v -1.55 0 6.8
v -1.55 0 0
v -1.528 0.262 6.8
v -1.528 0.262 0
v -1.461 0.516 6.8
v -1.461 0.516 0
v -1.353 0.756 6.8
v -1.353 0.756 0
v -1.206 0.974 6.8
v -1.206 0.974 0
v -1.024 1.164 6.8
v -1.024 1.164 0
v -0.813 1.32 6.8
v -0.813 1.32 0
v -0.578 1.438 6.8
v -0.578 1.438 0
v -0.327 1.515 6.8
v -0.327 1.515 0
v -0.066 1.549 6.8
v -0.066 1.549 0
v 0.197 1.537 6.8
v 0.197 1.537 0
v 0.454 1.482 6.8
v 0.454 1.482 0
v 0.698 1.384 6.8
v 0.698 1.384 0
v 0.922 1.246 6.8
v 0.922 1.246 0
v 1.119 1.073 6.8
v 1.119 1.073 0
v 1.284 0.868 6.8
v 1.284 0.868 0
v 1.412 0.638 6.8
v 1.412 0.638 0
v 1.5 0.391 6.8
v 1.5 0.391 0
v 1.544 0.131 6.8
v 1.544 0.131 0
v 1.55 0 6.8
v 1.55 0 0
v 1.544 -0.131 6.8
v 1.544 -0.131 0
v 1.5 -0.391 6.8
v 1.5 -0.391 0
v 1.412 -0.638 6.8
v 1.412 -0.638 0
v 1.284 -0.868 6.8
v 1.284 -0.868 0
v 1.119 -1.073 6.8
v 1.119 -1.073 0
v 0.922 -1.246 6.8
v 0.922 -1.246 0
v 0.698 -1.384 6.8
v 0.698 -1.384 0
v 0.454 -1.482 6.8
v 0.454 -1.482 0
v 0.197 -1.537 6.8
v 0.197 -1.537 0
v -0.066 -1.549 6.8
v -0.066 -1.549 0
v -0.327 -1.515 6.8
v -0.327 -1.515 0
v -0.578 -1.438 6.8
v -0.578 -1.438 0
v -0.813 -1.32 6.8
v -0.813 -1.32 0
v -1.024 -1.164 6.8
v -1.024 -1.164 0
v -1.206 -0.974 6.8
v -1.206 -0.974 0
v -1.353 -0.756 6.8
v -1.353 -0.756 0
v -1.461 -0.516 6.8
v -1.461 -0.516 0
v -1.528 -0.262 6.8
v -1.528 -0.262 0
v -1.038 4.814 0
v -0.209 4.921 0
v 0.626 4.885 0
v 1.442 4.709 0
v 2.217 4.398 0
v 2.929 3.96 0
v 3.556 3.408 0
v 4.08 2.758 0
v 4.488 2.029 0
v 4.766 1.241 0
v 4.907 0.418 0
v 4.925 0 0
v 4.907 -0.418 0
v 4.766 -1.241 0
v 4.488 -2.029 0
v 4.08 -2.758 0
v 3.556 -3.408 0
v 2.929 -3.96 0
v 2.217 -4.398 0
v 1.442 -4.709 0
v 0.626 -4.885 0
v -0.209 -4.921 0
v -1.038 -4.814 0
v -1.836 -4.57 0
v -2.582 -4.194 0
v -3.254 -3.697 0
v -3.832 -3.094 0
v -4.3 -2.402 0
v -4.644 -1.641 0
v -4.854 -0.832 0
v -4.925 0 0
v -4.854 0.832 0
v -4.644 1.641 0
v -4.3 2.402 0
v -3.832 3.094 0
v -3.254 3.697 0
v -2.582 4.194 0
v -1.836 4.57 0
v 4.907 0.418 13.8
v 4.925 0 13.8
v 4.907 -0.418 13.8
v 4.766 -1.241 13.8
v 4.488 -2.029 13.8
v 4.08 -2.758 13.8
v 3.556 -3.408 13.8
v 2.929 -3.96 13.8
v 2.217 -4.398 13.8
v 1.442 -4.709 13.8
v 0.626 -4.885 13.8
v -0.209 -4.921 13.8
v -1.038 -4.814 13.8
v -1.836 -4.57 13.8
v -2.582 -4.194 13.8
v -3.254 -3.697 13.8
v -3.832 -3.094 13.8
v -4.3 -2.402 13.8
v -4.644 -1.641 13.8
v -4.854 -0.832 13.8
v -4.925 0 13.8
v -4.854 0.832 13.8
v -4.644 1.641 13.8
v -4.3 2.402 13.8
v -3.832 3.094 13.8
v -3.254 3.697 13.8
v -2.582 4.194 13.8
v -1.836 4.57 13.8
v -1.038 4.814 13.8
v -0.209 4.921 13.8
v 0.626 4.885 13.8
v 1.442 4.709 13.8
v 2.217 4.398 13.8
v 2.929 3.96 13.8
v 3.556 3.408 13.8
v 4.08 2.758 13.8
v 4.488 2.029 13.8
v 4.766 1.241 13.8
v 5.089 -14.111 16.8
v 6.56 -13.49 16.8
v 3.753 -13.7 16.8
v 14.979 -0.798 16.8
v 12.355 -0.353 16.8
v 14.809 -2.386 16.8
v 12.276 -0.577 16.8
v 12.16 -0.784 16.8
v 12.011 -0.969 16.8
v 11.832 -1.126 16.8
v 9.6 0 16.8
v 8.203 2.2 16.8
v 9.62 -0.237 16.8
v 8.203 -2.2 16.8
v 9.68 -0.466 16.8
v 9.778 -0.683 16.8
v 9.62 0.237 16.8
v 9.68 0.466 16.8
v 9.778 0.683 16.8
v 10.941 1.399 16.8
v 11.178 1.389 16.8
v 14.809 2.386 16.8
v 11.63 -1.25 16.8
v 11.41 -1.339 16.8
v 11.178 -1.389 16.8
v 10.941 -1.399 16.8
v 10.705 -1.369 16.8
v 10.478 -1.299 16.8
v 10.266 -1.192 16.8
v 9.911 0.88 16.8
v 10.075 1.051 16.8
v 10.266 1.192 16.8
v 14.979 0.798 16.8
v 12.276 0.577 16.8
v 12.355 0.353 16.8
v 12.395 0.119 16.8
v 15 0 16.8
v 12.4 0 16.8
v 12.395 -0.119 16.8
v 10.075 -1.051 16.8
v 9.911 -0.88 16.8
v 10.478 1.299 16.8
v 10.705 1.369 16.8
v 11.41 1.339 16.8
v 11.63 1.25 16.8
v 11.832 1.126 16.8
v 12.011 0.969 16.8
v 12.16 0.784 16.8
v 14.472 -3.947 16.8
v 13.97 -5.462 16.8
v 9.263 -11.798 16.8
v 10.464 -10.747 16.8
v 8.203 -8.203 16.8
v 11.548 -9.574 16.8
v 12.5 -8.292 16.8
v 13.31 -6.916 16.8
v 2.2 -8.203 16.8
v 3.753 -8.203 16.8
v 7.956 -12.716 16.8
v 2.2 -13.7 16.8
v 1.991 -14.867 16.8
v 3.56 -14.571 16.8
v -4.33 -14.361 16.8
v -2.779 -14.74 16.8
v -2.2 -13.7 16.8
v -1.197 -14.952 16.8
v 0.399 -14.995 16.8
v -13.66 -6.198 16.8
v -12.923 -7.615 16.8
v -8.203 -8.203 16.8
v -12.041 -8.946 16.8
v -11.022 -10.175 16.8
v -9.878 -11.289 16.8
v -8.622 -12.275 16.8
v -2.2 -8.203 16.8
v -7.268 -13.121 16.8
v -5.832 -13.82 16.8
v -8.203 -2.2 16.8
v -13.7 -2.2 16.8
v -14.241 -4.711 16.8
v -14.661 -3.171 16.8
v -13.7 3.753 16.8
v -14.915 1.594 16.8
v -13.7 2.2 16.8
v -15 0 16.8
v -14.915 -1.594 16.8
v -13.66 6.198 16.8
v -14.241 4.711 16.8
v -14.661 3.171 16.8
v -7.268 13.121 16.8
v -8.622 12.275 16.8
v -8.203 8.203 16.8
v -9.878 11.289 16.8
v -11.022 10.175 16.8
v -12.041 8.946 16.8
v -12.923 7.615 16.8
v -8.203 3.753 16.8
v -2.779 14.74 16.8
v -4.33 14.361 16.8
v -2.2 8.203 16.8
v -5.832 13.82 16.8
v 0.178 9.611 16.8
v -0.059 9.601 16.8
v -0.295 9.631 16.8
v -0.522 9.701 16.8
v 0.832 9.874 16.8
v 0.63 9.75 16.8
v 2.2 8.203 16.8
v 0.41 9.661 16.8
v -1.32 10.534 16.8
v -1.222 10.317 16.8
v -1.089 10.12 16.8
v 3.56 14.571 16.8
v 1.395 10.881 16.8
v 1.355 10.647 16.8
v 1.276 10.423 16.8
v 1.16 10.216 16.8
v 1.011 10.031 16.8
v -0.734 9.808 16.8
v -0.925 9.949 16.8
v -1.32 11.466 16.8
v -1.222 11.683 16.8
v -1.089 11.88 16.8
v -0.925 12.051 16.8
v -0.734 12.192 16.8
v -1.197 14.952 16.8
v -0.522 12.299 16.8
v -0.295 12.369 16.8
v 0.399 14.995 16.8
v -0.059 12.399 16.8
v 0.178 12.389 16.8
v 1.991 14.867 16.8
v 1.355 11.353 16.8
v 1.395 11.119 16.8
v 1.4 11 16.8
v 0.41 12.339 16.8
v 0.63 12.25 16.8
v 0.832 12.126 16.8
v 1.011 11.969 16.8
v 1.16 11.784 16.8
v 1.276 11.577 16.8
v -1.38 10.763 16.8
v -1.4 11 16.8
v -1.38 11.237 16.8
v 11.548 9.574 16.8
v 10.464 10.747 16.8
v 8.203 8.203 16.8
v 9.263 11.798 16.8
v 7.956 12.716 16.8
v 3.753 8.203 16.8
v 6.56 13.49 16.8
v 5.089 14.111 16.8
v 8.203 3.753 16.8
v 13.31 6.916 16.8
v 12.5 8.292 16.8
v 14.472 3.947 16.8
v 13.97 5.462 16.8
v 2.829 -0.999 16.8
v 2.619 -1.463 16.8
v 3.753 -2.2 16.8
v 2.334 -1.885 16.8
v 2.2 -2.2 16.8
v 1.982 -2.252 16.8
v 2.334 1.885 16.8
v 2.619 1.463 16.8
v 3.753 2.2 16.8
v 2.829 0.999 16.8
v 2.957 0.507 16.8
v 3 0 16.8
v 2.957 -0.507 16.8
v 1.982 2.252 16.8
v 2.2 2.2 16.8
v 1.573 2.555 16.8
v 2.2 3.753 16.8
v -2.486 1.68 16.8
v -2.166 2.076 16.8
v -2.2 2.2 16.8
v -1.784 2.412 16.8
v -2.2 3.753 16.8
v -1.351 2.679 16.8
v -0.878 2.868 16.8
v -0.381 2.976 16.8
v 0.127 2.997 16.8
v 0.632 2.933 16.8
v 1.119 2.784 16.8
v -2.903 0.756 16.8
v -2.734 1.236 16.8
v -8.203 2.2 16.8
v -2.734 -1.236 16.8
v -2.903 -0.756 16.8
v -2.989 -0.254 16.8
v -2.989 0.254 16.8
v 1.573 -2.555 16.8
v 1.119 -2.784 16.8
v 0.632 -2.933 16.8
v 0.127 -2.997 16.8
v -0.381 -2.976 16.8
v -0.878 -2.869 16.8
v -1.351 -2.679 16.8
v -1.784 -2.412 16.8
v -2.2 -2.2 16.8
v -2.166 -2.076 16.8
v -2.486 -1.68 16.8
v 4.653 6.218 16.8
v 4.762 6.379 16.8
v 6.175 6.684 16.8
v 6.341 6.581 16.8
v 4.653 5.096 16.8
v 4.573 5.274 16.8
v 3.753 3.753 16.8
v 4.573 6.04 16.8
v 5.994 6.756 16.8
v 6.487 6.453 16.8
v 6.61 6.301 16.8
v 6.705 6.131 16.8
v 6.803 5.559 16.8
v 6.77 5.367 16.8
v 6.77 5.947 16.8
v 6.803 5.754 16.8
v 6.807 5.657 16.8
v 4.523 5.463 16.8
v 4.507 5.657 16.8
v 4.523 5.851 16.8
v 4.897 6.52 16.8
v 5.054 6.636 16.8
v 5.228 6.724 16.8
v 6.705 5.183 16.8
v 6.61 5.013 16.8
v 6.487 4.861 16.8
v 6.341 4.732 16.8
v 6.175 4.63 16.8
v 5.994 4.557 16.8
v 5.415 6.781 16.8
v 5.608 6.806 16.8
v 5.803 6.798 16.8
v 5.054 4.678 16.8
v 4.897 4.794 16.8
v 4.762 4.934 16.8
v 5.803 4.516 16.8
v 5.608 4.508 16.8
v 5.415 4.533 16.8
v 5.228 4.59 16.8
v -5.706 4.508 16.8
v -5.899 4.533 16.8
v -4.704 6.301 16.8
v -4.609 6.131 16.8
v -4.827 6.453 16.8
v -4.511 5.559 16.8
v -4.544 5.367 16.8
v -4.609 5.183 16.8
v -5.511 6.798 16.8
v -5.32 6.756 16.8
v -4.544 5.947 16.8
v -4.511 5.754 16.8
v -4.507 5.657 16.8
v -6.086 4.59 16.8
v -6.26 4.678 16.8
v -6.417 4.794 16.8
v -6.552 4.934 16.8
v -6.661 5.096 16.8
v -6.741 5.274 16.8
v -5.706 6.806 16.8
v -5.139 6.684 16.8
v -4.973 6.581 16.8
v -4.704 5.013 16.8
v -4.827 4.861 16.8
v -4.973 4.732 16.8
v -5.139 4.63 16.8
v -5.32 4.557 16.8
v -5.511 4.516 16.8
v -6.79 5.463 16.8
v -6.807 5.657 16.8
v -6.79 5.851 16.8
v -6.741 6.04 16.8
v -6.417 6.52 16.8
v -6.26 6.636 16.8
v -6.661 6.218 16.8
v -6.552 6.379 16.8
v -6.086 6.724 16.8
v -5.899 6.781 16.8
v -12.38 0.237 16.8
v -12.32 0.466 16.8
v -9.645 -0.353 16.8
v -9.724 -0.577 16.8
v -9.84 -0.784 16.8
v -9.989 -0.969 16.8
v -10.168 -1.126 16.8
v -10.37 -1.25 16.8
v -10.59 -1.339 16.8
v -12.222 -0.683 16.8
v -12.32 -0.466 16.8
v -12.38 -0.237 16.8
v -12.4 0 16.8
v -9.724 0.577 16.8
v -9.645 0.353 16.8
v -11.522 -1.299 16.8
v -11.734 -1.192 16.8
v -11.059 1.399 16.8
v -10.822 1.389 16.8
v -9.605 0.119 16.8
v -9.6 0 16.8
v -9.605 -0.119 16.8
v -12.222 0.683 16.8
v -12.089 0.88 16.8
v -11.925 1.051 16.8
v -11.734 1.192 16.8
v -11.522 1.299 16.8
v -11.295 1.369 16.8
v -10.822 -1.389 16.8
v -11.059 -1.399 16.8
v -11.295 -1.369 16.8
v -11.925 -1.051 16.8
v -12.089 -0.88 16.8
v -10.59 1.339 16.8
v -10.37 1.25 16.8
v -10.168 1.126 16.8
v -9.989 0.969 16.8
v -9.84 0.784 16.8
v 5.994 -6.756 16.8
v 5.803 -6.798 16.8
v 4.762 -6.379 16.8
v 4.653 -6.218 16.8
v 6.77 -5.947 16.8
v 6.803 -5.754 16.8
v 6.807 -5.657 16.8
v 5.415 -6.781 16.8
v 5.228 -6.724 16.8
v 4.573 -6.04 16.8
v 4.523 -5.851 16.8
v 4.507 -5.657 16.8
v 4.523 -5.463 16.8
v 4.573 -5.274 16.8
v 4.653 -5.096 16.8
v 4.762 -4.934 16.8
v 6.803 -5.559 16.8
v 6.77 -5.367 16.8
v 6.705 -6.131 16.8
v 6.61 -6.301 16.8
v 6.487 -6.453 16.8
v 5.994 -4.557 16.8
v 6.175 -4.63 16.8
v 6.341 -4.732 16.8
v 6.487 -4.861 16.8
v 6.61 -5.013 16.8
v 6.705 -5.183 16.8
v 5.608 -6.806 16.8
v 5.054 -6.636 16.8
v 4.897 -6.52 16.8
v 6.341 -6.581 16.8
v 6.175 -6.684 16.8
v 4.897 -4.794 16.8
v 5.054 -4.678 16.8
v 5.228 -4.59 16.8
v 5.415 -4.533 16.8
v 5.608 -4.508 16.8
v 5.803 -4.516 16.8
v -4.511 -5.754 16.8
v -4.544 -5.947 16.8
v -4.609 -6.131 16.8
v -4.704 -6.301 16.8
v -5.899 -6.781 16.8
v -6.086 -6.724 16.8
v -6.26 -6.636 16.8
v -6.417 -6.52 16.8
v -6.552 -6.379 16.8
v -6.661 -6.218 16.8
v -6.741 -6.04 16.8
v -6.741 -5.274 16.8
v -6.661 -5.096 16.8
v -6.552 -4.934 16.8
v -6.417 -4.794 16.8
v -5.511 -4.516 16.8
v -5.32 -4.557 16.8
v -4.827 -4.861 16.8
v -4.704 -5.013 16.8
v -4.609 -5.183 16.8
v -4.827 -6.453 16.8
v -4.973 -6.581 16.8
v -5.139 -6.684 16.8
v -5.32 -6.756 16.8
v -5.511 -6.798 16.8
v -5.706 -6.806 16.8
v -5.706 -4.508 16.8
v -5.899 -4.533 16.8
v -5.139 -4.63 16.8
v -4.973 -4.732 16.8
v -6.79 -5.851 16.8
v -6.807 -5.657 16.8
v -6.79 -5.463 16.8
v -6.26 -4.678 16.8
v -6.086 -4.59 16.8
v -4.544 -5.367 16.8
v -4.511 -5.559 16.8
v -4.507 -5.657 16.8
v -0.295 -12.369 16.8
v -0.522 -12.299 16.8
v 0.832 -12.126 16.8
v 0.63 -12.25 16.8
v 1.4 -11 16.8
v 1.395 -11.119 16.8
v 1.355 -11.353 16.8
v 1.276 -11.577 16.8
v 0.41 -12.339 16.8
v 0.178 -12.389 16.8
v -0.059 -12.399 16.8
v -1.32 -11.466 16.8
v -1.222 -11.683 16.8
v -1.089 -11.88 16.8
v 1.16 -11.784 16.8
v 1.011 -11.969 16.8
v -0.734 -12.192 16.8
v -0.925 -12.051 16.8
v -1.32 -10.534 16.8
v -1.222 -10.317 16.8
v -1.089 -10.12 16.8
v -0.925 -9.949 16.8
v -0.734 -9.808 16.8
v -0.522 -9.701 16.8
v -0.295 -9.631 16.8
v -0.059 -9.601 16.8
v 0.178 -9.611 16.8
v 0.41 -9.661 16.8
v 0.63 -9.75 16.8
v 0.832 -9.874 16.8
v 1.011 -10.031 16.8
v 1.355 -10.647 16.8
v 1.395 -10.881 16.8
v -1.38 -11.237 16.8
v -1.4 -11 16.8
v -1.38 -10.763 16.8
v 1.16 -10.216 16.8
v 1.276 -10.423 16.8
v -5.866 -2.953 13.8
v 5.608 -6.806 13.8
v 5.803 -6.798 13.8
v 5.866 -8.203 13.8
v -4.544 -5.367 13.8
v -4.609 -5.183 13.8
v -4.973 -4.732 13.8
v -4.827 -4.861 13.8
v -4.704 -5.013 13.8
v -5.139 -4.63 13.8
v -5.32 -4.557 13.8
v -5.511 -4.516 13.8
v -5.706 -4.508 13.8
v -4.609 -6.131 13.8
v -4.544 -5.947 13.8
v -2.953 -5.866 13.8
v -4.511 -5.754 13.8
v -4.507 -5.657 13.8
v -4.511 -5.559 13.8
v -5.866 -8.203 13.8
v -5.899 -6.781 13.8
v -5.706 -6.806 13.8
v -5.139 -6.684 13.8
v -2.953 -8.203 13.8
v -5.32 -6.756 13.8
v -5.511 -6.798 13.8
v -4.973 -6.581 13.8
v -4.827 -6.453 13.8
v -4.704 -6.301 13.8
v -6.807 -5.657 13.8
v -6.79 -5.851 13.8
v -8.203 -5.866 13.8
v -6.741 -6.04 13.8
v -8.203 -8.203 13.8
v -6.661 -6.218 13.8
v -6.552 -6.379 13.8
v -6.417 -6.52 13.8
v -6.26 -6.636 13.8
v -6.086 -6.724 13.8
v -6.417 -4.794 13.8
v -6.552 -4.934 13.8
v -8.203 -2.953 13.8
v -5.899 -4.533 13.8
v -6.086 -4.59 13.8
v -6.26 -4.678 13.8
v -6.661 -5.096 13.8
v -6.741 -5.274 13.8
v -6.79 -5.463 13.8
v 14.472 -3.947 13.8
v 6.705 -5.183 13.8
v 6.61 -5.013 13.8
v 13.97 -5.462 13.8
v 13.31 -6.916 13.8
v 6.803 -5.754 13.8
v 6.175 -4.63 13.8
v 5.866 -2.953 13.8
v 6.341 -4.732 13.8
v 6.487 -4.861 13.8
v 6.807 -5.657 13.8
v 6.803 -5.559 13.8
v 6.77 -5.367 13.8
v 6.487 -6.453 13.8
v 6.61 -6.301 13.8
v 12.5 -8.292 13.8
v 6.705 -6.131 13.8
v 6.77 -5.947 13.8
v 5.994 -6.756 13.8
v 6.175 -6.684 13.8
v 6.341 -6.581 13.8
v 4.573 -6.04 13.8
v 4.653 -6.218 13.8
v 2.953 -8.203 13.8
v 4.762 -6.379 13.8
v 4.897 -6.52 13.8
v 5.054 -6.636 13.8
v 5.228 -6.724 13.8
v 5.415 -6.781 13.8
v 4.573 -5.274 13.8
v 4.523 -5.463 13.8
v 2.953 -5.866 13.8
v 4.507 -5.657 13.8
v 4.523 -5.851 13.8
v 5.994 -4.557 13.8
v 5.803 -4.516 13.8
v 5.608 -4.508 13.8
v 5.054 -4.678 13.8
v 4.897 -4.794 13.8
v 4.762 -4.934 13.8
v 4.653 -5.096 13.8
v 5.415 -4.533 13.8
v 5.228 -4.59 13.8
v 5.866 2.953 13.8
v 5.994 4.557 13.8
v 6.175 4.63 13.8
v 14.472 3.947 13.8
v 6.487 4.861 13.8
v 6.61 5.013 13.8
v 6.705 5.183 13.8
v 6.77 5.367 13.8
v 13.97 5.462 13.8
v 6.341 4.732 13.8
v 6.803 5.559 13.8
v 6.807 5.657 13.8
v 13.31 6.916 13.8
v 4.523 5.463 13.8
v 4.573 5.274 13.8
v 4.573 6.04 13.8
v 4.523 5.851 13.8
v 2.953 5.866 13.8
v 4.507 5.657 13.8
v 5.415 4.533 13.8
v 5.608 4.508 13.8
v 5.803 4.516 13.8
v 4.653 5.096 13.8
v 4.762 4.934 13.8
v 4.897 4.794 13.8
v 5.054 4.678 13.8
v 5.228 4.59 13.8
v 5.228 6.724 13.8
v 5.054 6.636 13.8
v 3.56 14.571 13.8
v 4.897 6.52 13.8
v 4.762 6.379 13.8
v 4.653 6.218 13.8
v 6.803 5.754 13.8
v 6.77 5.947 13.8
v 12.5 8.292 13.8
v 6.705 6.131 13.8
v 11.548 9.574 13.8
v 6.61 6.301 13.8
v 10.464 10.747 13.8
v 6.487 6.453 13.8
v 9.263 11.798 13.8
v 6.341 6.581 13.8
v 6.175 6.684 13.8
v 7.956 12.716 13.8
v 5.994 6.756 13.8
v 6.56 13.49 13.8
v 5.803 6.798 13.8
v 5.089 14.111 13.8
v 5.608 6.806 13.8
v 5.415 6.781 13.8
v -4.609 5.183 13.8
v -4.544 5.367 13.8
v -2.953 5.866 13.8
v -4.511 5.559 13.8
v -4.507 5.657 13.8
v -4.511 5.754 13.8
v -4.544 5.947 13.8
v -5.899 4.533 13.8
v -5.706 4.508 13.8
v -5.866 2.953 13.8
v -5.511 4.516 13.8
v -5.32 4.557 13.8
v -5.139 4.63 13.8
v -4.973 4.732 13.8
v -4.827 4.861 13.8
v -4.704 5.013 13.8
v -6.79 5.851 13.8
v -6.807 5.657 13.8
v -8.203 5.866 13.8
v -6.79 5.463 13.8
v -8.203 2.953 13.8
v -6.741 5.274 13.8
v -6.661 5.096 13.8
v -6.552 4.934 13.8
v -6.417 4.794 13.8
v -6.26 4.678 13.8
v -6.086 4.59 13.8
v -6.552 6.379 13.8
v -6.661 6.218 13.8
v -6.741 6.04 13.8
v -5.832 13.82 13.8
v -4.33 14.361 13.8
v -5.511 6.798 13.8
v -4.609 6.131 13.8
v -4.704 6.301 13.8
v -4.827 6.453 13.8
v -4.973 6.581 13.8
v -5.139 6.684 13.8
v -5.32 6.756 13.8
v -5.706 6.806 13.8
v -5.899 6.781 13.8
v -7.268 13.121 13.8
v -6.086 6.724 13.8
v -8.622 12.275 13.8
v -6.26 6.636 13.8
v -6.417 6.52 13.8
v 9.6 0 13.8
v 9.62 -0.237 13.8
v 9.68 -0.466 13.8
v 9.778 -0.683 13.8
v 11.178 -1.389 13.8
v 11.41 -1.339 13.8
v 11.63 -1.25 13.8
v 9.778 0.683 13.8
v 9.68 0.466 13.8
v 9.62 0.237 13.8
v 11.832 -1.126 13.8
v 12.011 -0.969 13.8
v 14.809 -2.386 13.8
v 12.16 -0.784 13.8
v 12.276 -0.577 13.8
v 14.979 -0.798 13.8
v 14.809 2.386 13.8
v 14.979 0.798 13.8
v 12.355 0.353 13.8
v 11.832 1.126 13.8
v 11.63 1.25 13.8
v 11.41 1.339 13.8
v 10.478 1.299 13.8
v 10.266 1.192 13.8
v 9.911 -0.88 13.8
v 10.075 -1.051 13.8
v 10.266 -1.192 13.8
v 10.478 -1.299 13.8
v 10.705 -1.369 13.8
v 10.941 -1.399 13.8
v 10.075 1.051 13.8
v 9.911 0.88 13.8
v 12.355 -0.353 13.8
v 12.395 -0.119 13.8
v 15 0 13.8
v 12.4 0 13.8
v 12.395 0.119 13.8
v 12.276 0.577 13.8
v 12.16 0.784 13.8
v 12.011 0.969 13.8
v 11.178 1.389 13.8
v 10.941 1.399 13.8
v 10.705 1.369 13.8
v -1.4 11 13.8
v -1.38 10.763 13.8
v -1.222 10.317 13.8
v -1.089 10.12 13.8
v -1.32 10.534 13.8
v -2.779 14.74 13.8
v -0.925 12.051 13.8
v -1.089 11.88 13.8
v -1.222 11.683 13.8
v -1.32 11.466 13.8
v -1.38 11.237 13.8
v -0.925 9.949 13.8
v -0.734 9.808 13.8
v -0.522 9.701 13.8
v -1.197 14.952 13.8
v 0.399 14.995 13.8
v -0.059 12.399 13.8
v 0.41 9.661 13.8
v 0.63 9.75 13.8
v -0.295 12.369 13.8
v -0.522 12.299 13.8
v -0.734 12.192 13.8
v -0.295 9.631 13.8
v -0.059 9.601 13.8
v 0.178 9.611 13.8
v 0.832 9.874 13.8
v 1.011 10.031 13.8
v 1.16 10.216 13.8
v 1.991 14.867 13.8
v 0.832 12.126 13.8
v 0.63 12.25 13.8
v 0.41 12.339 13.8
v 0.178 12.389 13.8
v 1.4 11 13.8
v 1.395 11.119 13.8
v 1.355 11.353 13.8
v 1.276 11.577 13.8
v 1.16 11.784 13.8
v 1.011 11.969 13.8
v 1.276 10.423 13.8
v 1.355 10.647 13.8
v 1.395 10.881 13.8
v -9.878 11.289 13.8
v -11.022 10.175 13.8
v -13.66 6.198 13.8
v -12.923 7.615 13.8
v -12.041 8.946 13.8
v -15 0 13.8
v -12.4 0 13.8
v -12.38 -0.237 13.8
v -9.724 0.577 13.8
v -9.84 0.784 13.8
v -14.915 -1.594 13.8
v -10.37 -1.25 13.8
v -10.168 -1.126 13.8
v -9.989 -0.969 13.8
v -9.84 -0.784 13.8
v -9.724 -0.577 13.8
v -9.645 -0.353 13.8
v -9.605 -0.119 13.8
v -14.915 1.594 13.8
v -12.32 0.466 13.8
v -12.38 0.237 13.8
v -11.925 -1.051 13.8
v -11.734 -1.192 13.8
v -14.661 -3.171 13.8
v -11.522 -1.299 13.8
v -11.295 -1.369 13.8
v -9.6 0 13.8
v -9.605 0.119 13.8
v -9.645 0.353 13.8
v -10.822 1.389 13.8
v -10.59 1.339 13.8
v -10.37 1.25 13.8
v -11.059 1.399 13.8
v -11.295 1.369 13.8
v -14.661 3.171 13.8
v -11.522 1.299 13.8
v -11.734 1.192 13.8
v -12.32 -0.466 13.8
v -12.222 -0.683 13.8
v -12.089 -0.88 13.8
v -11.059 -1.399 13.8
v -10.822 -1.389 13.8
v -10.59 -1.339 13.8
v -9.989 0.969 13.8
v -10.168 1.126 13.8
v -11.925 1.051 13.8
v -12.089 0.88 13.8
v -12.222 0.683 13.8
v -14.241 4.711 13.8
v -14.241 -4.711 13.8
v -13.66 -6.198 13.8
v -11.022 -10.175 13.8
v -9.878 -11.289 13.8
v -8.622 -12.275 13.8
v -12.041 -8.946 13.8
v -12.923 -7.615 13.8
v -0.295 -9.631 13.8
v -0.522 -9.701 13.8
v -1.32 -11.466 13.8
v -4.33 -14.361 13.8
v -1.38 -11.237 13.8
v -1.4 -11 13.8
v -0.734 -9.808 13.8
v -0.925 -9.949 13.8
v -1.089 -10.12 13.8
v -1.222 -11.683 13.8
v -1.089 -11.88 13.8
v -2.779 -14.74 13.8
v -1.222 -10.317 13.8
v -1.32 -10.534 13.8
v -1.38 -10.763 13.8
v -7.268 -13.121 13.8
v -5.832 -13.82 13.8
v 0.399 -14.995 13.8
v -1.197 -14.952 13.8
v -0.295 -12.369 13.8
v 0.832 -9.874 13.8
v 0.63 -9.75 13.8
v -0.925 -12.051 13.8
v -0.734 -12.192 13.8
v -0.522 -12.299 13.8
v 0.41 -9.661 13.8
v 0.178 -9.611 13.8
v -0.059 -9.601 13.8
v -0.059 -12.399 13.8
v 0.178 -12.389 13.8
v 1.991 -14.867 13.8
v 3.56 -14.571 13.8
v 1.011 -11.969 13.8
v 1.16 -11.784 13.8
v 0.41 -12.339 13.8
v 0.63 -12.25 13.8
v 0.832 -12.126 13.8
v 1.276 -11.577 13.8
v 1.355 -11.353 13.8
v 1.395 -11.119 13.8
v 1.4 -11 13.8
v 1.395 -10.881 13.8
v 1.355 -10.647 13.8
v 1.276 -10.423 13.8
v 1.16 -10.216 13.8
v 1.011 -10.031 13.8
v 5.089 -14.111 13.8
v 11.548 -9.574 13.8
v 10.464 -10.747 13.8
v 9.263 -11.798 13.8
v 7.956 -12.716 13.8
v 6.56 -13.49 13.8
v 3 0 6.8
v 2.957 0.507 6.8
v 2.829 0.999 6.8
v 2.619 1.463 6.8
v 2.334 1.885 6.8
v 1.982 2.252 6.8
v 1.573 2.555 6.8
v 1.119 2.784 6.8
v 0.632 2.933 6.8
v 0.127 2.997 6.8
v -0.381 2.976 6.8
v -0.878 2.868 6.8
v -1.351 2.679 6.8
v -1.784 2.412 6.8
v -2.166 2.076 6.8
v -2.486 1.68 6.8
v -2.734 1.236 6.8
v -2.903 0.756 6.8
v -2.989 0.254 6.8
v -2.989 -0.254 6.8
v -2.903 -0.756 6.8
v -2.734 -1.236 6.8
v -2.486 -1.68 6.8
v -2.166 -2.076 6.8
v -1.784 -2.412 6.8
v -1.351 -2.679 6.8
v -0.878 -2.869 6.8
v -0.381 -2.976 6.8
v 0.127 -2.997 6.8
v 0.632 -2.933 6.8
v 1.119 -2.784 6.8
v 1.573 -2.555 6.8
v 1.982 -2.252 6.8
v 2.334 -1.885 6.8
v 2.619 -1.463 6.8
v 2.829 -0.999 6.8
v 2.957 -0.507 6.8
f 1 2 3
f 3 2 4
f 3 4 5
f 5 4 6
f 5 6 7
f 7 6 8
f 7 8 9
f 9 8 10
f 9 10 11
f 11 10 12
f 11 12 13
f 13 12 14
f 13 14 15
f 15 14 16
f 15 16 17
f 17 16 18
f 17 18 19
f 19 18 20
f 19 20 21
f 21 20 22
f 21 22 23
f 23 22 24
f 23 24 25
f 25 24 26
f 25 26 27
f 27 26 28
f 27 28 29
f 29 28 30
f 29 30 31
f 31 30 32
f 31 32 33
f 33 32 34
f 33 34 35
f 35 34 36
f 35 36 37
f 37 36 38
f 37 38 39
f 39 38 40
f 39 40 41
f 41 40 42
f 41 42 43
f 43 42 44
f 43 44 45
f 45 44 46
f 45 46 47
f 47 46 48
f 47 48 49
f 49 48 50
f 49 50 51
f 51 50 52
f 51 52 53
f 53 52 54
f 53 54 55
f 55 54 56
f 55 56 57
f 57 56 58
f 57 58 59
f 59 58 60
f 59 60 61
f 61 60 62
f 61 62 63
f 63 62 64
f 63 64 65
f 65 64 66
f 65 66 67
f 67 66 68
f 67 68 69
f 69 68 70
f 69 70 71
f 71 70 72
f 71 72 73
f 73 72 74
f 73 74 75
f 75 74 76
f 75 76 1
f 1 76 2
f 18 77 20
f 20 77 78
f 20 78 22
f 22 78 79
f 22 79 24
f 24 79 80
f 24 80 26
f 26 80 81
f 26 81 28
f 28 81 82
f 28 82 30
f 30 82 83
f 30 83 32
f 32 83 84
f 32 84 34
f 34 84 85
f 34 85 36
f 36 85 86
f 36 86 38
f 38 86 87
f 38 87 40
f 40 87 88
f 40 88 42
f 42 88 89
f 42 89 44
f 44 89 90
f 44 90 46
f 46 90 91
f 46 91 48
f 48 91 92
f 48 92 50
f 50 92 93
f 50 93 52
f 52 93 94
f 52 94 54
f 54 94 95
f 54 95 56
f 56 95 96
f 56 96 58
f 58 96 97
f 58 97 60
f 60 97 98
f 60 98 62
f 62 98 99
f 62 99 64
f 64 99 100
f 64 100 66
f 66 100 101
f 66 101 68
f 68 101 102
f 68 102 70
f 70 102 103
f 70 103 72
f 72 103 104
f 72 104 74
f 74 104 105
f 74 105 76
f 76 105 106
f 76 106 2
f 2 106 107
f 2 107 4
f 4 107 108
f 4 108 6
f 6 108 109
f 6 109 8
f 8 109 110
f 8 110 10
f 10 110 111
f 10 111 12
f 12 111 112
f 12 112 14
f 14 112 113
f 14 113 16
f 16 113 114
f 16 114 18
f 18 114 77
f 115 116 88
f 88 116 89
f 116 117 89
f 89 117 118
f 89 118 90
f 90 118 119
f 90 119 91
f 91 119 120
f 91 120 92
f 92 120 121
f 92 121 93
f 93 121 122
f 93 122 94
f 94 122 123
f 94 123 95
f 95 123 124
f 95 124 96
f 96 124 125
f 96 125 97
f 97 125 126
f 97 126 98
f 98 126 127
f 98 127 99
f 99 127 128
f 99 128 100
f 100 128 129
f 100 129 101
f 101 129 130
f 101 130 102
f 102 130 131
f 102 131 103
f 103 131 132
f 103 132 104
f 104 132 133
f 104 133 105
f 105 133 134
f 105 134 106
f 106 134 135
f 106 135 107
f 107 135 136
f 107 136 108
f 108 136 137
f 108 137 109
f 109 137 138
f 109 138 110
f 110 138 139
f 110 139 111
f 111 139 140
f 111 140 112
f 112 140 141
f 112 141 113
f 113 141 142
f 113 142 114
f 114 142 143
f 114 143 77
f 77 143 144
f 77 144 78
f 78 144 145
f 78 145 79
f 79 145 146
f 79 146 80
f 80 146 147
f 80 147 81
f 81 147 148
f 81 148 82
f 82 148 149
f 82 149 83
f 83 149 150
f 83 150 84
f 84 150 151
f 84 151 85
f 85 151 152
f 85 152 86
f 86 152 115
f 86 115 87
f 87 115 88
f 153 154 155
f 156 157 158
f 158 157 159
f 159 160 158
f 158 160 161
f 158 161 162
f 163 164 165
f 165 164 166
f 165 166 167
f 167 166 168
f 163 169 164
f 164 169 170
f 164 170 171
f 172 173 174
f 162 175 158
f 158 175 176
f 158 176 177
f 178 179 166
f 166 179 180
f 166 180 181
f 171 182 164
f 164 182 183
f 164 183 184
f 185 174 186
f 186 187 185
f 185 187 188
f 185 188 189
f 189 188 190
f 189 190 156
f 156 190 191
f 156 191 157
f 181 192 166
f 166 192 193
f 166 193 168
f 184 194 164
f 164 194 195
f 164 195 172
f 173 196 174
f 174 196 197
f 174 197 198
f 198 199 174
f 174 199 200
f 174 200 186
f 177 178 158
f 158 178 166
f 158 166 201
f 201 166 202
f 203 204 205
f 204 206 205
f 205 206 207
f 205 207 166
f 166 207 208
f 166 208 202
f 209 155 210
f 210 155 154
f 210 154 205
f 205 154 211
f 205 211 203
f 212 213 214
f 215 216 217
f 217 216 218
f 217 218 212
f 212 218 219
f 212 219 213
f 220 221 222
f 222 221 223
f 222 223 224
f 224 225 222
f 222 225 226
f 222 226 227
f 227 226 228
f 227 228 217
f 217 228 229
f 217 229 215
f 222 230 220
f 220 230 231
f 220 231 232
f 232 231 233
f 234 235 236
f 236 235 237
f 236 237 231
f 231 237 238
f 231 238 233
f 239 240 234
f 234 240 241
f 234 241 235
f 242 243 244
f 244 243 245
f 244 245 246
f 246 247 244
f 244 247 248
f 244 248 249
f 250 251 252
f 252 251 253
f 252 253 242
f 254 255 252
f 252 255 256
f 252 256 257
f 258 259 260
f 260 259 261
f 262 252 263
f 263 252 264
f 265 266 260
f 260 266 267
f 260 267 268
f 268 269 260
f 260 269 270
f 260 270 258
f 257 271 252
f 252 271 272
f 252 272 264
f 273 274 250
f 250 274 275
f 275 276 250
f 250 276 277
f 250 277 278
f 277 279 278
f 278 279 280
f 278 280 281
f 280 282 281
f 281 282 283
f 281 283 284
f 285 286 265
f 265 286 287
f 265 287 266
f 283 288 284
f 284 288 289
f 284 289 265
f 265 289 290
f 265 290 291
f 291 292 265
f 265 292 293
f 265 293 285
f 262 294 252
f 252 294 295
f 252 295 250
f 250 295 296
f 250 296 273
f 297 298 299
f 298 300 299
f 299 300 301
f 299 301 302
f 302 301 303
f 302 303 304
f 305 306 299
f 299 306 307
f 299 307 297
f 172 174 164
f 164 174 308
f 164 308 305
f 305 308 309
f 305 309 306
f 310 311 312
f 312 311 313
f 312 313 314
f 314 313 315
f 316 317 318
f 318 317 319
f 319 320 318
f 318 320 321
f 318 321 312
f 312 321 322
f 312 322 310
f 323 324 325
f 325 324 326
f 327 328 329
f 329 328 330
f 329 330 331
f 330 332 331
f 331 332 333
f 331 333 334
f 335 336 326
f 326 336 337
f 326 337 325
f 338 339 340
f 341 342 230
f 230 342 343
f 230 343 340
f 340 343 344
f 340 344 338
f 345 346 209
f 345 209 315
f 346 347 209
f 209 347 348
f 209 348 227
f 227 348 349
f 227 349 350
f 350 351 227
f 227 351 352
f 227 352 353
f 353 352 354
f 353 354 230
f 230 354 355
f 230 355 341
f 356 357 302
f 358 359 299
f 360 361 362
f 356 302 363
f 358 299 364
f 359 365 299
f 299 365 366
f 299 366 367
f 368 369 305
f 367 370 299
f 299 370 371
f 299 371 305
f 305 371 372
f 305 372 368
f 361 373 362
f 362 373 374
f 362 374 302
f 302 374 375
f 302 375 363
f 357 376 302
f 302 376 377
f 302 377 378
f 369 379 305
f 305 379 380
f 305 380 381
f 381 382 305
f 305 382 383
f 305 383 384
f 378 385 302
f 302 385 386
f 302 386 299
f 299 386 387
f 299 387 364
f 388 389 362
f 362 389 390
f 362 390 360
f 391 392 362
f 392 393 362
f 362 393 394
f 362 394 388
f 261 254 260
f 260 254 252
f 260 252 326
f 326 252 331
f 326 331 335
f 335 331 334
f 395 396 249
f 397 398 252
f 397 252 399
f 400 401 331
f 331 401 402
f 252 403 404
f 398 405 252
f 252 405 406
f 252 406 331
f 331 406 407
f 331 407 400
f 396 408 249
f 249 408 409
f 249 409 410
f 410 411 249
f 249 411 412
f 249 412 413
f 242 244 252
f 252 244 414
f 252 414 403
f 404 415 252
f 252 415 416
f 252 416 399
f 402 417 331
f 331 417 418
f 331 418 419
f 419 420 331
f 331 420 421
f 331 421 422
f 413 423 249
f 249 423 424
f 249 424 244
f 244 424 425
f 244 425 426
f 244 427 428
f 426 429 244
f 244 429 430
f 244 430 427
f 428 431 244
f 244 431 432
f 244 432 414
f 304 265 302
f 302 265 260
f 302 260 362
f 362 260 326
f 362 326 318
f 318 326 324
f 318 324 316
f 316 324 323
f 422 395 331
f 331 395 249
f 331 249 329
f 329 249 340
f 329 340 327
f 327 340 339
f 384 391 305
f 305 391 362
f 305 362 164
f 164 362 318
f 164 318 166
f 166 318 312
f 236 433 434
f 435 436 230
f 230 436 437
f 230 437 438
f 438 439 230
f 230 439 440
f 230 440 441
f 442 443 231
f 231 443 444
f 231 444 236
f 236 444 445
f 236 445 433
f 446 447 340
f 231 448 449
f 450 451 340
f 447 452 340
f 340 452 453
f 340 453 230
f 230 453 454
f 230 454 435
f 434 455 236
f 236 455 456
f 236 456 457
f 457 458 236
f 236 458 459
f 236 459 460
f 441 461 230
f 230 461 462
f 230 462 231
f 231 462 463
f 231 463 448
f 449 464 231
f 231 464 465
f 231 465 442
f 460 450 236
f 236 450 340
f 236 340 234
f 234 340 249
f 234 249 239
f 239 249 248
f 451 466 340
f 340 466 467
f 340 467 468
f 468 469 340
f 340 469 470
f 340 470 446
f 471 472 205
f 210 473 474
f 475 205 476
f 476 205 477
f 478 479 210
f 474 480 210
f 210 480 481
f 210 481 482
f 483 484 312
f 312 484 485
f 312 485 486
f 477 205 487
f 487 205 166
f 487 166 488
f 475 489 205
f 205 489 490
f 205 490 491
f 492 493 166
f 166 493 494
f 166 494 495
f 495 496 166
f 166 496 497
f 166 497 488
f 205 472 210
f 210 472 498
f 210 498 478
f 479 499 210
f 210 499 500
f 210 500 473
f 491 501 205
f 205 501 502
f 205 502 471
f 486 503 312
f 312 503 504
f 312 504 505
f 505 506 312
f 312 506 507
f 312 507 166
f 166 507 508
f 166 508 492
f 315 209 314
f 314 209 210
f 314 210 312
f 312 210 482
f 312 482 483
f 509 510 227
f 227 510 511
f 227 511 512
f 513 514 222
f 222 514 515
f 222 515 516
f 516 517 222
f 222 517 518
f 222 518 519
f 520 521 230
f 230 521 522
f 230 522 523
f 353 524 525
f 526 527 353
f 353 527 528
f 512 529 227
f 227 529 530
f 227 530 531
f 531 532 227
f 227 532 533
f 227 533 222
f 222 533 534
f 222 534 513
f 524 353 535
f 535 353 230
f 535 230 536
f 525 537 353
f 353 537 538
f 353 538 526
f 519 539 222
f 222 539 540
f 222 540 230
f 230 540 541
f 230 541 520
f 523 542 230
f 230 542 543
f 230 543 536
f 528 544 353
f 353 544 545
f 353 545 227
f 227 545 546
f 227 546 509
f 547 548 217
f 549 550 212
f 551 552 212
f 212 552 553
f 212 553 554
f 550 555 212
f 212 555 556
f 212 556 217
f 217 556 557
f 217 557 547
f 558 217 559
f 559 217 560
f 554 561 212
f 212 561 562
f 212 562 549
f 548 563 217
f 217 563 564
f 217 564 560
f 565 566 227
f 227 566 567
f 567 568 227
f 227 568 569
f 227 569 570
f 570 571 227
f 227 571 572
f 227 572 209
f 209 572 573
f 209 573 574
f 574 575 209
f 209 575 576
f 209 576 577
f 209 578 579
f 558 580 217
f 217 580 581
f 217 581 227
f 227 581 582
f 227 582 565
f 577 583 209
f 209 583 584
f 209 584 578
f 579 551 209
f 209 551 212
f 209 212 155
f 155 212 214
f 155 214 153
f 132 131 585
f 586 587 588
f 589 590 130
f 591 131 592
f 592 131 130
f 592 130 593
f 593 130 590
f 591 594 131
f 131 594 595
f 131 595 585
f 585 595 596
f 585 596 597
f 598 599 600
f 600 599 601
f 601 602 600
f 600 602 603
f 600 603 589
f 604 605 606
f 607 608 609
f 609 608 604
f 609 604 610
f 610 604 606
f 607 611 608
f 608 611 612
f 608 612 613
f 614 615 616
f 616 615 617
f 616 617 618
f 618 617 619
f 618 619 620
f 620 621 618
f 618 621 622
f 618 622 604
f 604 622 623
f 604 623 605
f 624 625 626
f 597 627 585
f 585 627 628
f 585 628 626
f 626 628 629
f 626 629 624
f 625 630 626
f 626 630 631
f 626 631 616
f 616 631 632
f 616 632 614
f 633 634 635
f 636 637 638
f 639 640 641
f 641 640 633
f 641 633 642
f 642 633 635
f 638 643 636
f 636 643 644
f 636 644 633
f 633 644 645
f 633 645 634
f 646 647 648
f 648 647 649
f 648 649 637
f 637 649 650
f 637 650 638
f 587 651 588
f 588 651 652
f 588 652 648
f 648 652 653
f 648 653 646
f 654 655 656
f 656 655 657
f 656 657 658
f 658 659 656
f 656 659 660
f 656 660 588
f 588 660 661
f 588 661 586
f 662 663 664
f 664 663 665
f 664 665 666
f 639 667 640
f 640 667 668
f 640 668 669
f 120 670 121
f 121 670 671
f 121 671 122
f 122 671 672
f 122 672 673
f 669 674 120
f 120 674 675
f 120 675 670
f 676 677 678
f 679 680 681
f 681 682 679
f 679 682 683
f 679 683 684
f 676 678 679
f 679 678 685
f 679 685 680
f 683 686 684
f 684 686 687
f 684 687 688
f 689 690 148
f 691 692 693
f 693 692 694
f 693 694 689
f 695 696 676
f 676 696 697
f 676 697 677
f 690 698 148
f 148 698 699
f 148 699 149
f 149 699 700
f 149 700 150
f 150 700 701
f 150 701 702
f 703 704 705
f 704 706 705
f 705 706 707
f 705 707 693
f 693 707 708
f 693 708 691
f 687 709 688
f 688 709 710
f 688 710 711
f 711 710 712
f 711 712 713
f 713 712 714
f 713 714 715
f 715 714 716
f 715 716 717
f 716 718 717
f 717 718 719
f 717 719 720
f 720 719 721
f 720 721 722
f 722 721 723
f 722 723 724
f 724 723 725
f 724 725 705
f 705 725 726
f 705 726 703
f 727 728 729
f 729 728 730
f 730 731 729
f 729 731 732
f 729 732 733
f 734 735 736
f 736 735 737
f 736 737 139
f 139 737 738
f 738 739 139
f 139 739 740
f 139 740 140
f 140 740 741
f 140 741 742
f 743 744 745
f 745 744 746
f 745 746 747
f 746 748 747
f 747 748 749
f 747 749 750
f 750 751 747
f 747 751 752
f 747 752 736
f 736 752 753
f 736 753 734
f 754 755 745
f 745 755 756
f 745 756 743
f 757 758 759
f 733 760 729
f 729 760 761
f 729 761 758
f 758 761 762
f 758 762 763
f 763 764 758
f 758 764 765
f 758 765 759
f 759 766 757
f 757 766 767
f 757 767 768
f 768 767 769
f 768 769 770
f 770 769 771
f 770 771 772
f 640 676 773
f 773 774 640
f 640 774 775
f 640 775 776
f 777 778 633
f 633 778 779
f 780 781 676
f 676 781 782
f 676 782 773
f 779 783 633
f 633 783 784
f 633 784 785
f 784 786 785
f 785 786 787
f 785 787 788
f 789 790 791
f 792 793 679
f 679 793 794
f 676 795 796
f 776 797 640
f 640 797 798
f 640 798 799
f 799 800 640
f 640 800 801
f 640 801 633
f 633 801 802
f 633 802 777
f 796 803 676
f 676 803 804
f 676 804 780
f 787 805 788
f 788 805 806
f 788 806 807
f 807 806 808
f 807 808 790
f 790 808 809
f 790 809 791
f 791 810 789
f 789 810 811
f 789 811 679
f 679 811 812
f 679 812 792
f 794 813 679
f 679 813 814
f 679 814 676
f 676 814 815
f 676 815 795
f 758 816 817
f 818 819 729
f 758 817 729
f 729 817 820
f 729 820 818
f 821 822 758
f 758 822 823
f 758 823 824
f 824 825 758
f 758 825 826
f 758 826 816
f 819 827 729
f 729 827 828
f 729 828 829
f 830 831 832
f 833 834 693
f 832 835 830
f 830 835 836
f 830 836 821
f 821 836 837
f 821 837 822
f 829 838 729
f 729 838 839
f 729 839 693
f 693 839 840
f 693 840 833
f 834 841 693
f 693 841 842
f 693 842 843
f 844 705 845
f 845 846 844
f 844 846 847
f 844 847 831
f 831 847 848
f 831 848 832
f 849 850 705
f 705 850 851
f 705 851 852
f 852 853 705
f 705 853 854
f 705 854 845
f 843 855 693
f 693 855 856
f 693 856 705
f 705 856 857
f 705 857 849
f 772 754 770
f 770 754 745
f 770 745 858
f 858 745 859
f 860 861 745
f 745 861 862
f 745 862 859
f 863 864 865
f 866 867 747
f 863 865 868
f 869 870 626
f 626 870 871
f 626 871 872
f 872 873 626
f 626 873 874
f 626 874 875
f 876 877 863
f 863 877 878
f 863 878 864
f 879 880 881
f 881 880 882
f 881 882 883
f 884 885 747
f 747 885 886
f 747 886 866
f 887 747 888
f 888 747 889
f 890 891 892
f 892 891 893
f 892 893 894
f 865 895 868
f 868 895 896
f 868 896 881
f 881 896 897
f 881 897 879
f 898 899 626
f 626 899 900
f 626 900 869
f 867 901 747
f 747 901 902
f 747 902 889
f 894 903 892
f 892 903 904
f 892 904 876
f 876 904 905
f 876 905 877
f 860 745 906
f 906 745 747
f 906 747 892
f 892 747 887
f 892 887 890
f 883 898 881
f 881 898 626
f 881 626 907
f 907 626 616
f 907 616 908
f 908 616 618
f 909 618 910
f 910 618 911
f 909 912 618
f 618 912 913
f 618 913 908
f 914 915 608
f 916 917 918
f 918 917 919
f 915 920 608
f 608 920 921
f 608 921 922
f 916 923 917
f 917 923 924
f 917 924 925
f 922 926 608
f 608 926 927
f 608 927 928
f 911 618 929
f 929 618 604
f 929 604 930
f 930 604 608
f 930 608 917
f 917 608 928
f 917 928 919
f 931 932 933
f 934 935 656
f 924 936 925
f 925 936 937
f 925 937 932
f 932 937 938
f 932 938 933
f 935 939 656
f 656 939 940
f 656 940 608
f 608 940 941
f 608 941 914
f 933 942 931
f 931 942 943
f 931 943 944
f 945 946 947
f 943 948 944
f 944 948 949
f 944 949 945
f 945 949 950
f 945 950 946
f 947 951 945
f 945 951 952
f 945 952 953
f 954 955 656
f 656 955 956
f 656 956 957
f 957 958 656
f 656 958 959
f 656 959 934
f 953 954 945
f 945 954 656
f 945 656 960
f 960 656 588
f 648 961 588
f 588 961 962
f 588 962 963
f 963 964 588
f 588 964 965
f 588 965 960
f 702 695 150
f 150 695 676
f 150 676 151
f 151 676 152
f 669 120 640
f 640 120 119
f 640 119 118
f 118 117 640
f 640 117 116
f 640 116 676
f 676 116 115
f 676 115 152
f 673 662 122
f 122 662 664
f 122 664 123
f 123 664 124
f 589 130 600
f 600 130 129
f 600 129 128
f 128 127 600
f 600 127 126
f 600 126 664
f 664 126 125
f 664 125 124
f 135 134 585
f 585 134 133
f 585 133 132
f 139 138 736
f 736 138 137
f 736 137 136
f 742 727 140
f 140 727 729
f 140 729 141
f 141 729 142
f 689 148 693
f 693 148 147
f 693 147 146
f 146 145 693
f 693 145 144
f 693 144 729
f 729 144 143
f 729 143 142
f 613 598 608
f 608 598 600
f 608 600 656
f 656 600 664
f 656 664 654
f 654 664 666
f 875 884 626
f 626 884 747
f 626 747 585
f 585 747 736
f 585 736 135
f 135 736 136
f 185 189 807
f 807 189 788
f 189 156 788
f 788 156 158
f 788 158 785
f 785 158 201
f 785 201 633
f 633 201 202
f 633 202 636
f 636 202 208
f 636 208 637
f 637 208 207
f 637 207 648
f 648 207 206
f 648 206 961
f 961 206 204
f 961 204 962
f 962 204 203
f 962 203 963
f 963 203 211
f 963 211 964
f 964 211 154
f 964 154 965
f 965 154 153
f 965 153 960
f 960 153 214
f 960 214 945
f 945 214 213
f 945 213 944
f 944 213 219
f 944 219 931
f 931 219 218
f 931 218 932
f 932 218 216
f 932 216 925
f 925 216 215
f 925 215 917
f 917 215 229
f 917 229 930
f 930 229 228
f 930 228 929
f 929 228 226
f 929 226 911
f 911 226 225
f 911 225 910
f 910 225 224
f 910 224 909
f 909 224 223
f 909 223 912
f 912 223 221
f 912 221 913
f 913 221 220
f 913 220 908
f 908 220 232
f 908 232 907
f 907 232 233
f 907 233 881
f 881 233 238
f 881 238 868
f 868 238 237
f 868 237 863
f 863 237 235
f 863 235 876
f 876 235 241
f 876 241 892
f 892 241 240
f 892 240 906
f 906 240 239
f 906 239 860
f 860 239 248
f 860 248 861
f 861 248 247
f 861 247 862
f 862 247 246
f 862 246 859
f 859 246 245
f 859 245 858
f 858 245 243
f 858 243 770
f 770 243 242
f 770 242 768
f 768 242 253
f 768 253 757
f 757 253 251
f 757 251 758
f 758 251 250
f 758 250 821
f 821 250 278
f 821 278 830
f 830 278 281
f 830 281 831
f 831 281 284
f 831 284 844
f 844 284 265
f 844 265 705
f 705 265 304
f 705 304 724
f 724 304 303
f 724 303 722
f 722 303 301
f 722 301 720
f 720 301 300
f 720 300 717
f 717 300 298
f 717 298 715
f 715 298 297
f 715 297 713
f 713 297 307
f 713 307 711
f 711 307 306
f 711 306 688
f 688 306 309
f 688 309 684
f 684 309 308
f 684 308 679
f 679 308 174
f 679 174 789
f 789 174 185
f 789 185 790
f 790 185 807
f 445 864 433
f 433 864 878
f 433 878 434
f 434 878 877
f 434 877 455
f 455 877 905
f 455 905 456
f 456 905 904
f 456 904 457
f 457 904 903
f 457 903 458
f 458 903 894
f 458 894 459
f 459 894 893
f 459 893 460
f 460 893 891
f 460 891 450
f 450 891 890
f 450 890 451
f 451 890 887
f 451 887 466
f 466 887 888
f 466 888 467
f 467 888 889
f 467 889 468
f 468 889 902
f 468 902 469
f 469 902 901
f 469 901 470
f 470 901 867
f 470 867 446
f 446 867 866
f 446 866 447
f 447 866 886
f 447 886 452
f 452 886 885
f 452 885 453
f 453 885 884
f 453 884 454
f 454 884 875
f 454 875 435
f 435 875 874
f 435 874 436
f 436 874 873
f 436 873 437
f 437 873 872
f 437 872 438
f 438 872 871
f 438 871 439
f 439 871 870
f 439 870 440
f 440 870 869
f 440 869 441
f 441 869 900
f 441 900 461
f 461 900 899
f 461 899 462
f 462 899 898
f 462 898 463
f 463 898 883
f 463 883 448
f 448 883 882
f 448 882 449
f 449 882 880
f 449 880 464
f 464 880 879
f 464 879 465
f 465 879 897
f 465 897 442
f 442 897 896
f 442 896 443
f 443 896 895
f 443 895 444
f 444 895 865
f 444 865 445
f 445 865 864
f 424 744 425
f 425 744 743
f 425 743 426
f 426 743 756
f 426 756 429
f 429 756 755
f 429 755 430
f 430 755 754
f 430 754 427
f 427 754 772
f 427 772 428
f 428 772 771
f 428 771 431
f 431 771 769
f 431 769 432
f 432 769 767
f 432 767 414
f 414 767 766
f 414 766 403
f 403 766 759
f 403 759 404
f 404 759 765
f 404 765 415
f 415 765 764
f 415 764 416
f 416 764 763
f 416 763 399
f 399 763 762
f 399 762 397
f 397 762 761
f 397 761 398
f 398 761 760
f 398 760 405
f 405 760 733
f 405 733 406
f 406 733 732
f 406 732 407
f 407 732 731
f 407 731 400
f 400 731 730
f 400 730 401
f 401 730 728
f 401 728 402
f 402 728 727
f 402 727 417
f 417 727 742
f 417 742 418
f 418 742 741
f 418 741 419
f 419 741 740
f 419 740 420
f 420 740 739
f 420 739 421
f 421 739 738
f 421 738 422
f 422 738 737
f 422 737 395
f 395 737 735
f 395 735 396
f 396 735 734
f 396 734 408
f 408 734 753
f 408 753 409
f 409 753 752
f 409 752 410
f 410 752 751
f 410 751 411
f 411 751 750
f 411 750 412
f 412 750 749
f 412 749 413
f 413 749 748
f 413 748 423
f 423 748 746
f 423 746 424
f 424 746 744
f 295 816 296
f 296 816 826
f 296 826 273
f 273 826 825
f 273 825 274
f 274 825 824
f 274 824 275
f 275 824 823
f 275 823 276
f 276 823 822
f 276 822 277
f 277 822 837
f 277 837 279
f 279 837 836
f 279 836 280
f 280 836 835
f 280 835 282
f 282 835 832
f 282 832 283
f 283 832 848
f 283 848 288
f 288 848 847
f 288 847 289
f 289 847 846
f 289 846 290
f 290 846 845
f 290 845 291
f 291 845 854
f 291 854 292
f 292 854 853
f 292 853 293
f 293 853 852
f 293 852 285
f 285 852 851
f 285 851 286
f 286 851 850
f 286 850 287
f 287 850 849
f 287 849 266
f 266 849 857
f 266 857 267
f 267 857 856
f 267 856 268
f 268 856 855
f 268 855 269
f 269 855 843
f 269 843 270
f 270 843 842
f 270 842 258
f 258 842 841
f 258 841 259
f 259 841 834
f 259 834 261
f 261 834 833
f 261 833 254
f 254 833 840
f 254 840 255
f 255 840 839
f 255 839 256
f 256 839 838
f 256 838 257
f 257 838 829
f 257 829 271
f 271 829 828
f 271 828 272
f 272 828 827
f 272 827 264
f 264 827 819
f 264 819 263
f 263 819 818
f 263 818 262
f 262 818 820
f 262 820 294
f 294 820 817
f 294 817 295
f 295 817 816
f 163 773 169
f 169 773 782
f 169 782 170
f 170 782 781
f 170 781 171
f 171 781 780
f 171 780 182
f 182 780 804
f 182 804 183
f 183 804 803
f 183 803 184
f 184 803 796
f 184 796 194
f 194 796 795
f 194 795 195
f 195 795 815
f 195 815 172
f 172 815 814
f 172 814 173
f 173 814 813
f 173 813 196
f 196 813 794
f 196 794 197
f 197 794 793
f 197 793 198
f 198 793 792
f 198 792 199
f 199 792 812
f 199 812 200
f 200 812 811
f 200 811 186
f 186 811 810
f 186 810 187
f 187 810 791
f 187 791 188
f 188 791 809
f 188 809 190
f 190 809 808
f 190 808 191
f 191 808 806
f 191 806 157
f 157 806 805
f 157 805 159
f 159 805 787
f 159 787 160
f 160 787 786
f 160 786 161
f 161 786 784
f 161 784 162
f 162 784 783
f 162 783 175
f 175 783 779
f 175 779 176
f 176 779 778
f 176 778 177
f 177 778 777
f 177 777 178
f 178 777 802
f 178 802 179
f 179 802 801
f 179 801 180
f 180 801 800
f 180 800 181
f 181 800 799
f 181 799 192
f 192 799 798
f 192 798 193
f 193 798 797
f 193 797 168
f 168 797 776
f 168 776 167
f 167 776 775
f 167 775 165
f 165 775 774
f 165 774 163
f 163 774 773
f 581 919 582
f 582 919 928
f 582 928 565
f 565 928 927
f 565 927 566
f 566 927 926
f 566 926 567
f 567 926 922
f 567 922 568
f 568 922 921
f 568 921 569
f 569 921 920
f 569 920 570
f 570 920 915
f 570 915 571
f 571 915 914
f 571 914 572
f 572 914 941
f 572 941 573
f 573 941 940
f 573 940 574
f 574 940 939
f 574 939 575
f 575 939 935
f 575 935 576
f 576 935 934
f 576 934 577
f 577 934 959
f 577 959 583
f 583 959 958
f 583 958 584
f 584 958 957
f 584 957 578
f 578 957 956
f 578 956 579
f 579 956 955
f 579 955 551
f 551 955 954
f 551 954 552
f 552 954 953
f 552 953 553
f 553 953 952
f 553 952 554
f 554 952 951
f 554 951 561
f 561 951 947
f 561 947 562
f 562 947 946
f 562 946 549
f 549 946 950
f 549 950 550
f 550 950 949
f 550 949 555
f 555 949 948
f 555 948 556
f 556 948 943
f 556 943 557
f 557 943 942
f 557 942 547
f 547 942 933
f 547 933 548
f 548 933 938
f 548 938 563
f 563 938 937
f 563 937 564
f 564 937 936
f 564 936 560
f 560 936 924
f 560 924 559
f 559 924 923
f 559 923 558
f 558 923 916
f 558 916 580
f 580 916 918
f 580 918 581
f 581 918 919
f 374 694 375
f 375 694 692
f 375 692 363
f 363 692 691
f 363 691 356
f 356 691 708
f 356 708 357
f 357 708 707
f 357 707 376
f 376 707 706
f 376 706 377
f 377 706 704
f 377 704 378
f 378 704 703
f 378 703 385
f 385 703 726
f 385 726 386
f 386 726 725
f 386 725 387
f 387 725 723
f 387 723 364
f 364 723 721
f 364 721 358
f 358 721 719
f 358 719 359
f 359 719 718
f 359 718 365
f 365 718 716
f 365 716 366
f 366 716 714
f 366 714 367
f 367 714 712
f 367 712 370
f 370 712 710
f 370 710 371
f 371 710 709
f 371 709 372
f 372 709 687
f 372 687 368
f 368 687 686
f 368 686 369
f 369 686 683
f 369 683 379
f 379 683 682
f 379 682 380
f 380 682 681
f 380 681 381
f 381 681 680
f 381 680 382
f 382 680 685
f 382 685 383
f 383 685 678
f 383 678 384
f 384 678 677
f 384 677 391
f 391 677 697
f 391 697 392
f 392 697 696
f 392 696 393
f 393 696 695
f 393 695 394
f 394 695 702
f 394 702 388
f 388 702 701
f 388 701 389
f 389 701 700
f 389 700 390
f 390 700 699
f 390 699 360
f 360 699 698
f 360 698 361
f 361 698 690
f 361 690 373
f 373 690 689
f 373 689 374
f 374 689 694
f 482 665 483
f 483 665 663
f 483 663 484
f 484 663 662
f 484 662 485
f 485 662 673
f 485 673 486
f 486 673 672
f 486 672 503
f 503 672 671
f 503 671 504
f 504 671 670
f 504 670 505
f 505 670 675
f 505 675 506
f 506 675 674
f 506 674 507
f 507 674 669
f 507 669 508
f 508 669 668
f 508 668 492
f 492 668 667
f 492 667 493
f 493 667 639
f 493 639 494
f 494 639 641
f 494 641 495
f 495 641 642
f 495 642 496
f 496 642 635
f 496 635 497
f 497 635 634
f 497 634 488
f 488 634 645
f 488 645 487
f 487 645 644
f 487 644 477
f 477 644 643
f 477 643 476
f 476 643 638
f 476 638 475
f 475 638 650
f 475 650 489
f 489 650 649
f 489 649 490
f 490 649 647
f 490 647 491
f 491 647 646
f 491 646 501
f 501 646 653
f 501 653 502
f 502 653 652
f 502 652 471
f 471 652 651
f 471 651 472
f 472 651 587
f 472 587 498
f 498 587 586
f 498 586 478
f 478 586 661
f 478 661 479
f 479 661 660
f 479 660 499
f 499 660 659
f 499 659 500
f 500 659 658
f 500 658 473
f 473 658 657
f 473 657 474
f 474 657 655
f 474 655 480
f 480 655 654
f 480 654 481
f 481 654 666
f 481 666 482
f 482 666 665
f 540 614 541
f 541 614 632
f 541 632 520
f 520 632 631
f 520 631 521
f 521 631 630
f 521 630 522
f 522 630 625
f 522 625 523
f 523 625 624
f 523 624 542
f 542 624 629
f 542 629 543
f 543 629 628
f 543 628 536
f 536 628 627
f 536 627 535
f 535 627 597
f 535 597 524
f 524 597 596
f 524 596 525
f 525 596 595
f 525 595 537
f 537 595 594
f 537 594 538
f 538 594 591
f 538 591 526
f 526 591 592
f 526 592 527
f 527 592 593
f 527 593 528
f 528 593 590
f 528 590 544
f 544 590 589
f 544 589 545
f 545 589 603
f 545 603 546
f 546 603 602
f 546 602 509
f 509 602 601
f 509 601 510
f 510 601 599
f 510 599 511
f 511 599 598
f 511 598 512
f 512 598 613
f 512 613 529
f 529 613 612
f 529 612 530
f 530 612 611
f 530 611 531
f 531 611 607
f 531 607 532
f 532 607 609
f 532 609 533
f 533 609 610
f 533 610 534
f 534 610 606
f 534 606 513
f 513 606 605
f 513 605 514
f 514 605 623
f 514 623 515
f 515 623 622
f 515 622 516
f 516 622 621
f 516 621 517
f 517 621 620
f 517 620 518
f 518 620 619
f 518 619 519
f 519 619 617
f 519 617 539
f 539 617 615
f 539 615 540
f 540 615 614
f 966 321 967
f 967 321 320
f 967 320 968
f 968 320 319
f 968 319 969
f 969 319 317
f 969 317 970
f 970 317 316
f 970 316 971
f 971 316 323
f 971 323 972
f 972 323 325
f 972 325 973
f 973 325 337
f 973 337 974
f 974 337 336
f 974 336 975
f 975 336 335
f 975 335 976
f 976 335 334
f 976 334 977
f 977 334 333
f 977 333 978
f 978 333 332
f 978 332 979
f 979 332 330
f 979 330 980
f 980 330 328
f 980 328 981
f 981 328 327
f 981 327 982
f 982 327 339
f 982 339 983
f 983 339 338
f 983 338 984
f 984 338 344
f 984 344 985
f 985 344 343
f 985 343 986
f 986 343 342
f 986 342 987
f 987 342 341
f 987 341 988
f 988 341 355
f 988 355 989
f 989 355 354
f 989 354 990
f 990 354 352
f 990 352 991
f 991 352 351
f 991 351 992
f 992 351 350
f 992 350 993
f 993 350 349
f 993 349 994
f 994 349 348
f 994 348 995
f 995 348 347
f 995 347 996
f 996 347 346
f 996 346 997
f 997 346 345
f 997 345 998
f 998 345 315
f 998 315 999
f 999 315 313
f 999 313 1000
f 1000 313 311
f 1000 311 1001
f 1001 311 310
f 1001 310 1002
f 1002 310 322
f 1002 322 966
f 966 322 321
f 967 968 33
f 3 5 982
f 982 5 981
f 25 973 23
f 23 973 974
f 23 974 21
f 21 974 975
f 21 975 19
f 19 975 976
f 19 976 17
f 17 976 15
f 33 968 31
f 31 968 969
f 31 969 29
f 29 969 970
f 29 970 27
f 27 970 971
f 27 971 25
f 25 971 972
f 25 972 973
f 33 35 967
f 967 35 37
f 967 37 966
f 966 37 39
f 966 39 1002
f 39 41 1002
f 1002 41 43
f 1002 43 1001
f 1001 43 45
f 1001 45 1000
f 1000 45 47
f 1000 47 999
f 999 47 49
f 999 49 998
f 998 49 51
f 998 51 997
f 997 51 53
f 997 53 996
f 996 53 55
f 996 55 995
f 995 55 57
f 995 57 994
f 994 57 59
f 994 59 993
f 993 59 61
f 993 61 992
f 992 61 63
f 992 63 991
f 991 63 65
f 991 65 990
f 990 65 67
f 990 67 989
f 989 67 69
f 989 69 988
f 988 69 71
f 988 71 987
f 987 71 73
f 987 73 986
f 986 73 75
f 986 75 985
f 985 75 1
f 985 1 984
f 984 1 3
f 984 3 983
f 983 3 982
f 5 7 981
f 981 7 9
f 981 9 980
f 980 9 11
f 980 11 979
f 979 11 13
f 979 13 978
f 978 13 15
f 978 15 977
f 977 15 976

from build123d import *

# Parameters (mm, degrees)
SKETCH_1_R          = 4.925
SKETCH_1_R_2        = 1.55
EXTRUDE_1_DEPTH     = 13.8
SKETCH_2_R          = 15
SKETCH_2_R_2        = 1.4
SKETCH_2_R_3        = 1.15
SKETCH_2_R_4        = 1.55
EXTRUDE_2_DEPTH     = 3
SKETCH_3_R          = 3
CUT_EXTRUDE_1_DEPTH = 10


with BuildPart() as part:
    # 草图1 → 凸台-拉伸1 (new body)
    with BuildSketch(Plane.XY):
        with Locations(Location((0, 0, 0), (0, 0, 180))):
            Circle(SKETCH_1_R)
        with Locations(Location((0, 0, 0), (0, 0, 180))):
            Circle(SKETCH_1_R_2, mode=Mode.SUBTRACT)
    extrude(amount=EXTRUDE_1_DEPTH)

    # 草图2 → 凸台-拉伸2 (add)
    with BuildSketch(Plane.XY.offset(13.8)):
        Circle(SKETCH_2_R)
        with Locations((-11, 0)):
            Circle(SKETCH_2_R_2, mode=Mode.SUBTRACT)
        with Locations((0, 11)):
            Circle(SKETCH_2_R_2, mode=Mode.SUBTRACT)
        with Locations((11, 0)):
            Circle(SKETCH_2_R_2, mode=Mode.SUBTRACT)
        with Locations((0, -11)):
            Circle(SKETCH_2_R_2, mode=Mode.SUBTRACT)
        with Locations((-5.656854249, 5.656854249)):
            Circle(SKETCH_2_R_3, mode=Mode.SUBTRACT)
        with Locations((5.656854249, 5.656854249)):
            Circle(SKETCH_2_R_3, mode=Mode.SUBTRACT)
        with Locations((5.656854249, -5.656854249)):
            Circle(SKETCH_2_R_3, mode=Mode.SUBTRACT)
        with Locations((-5.656854249, -5.656854249)):
            Circle(SKETCH_2_R_3, mode=Mode.SUBTRACT)
        with Locations(Location((0, 0, 0), (0, 0, 180))):
            Circle(SKETCH_2_R_4, mode=Mode.SUBTRACT)
    extrude(amount=EXTRUDE_2_DEPTH)

    # 草图3 → 切除-拉伸1 (cut)
    with BuildSketch(Plane.XY.offset(16.8)):
        Circle(SKETCH_3_R)
    extrude(amount=-CUT_EXTRUDE_1_DEPTH, mode=Mode.SUBTRACT)


solid = part.part
